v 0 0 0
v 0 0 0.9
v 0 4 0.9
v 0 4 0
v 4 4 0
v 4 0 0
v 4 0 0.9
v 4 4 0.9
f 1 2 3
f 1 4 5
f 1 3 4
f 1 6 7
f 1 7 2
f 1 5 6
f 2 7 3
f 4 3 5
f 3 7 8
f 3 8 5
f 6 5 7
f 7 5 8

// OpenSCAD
/* Warning, this is a very basic generator with a lot of approximation 
input data : [QFN, D5X, 4x4x0.9mm, 16, , A, C04-00381A]
generated by com.zoubworld.electronics.cad.model3d.Basic
Date : Sun Feb 15 10:50:48 CET 2026
*/

//body
color("black")
translate([0,0,0])
cube([4.0,4.0,0.9], center=false);
